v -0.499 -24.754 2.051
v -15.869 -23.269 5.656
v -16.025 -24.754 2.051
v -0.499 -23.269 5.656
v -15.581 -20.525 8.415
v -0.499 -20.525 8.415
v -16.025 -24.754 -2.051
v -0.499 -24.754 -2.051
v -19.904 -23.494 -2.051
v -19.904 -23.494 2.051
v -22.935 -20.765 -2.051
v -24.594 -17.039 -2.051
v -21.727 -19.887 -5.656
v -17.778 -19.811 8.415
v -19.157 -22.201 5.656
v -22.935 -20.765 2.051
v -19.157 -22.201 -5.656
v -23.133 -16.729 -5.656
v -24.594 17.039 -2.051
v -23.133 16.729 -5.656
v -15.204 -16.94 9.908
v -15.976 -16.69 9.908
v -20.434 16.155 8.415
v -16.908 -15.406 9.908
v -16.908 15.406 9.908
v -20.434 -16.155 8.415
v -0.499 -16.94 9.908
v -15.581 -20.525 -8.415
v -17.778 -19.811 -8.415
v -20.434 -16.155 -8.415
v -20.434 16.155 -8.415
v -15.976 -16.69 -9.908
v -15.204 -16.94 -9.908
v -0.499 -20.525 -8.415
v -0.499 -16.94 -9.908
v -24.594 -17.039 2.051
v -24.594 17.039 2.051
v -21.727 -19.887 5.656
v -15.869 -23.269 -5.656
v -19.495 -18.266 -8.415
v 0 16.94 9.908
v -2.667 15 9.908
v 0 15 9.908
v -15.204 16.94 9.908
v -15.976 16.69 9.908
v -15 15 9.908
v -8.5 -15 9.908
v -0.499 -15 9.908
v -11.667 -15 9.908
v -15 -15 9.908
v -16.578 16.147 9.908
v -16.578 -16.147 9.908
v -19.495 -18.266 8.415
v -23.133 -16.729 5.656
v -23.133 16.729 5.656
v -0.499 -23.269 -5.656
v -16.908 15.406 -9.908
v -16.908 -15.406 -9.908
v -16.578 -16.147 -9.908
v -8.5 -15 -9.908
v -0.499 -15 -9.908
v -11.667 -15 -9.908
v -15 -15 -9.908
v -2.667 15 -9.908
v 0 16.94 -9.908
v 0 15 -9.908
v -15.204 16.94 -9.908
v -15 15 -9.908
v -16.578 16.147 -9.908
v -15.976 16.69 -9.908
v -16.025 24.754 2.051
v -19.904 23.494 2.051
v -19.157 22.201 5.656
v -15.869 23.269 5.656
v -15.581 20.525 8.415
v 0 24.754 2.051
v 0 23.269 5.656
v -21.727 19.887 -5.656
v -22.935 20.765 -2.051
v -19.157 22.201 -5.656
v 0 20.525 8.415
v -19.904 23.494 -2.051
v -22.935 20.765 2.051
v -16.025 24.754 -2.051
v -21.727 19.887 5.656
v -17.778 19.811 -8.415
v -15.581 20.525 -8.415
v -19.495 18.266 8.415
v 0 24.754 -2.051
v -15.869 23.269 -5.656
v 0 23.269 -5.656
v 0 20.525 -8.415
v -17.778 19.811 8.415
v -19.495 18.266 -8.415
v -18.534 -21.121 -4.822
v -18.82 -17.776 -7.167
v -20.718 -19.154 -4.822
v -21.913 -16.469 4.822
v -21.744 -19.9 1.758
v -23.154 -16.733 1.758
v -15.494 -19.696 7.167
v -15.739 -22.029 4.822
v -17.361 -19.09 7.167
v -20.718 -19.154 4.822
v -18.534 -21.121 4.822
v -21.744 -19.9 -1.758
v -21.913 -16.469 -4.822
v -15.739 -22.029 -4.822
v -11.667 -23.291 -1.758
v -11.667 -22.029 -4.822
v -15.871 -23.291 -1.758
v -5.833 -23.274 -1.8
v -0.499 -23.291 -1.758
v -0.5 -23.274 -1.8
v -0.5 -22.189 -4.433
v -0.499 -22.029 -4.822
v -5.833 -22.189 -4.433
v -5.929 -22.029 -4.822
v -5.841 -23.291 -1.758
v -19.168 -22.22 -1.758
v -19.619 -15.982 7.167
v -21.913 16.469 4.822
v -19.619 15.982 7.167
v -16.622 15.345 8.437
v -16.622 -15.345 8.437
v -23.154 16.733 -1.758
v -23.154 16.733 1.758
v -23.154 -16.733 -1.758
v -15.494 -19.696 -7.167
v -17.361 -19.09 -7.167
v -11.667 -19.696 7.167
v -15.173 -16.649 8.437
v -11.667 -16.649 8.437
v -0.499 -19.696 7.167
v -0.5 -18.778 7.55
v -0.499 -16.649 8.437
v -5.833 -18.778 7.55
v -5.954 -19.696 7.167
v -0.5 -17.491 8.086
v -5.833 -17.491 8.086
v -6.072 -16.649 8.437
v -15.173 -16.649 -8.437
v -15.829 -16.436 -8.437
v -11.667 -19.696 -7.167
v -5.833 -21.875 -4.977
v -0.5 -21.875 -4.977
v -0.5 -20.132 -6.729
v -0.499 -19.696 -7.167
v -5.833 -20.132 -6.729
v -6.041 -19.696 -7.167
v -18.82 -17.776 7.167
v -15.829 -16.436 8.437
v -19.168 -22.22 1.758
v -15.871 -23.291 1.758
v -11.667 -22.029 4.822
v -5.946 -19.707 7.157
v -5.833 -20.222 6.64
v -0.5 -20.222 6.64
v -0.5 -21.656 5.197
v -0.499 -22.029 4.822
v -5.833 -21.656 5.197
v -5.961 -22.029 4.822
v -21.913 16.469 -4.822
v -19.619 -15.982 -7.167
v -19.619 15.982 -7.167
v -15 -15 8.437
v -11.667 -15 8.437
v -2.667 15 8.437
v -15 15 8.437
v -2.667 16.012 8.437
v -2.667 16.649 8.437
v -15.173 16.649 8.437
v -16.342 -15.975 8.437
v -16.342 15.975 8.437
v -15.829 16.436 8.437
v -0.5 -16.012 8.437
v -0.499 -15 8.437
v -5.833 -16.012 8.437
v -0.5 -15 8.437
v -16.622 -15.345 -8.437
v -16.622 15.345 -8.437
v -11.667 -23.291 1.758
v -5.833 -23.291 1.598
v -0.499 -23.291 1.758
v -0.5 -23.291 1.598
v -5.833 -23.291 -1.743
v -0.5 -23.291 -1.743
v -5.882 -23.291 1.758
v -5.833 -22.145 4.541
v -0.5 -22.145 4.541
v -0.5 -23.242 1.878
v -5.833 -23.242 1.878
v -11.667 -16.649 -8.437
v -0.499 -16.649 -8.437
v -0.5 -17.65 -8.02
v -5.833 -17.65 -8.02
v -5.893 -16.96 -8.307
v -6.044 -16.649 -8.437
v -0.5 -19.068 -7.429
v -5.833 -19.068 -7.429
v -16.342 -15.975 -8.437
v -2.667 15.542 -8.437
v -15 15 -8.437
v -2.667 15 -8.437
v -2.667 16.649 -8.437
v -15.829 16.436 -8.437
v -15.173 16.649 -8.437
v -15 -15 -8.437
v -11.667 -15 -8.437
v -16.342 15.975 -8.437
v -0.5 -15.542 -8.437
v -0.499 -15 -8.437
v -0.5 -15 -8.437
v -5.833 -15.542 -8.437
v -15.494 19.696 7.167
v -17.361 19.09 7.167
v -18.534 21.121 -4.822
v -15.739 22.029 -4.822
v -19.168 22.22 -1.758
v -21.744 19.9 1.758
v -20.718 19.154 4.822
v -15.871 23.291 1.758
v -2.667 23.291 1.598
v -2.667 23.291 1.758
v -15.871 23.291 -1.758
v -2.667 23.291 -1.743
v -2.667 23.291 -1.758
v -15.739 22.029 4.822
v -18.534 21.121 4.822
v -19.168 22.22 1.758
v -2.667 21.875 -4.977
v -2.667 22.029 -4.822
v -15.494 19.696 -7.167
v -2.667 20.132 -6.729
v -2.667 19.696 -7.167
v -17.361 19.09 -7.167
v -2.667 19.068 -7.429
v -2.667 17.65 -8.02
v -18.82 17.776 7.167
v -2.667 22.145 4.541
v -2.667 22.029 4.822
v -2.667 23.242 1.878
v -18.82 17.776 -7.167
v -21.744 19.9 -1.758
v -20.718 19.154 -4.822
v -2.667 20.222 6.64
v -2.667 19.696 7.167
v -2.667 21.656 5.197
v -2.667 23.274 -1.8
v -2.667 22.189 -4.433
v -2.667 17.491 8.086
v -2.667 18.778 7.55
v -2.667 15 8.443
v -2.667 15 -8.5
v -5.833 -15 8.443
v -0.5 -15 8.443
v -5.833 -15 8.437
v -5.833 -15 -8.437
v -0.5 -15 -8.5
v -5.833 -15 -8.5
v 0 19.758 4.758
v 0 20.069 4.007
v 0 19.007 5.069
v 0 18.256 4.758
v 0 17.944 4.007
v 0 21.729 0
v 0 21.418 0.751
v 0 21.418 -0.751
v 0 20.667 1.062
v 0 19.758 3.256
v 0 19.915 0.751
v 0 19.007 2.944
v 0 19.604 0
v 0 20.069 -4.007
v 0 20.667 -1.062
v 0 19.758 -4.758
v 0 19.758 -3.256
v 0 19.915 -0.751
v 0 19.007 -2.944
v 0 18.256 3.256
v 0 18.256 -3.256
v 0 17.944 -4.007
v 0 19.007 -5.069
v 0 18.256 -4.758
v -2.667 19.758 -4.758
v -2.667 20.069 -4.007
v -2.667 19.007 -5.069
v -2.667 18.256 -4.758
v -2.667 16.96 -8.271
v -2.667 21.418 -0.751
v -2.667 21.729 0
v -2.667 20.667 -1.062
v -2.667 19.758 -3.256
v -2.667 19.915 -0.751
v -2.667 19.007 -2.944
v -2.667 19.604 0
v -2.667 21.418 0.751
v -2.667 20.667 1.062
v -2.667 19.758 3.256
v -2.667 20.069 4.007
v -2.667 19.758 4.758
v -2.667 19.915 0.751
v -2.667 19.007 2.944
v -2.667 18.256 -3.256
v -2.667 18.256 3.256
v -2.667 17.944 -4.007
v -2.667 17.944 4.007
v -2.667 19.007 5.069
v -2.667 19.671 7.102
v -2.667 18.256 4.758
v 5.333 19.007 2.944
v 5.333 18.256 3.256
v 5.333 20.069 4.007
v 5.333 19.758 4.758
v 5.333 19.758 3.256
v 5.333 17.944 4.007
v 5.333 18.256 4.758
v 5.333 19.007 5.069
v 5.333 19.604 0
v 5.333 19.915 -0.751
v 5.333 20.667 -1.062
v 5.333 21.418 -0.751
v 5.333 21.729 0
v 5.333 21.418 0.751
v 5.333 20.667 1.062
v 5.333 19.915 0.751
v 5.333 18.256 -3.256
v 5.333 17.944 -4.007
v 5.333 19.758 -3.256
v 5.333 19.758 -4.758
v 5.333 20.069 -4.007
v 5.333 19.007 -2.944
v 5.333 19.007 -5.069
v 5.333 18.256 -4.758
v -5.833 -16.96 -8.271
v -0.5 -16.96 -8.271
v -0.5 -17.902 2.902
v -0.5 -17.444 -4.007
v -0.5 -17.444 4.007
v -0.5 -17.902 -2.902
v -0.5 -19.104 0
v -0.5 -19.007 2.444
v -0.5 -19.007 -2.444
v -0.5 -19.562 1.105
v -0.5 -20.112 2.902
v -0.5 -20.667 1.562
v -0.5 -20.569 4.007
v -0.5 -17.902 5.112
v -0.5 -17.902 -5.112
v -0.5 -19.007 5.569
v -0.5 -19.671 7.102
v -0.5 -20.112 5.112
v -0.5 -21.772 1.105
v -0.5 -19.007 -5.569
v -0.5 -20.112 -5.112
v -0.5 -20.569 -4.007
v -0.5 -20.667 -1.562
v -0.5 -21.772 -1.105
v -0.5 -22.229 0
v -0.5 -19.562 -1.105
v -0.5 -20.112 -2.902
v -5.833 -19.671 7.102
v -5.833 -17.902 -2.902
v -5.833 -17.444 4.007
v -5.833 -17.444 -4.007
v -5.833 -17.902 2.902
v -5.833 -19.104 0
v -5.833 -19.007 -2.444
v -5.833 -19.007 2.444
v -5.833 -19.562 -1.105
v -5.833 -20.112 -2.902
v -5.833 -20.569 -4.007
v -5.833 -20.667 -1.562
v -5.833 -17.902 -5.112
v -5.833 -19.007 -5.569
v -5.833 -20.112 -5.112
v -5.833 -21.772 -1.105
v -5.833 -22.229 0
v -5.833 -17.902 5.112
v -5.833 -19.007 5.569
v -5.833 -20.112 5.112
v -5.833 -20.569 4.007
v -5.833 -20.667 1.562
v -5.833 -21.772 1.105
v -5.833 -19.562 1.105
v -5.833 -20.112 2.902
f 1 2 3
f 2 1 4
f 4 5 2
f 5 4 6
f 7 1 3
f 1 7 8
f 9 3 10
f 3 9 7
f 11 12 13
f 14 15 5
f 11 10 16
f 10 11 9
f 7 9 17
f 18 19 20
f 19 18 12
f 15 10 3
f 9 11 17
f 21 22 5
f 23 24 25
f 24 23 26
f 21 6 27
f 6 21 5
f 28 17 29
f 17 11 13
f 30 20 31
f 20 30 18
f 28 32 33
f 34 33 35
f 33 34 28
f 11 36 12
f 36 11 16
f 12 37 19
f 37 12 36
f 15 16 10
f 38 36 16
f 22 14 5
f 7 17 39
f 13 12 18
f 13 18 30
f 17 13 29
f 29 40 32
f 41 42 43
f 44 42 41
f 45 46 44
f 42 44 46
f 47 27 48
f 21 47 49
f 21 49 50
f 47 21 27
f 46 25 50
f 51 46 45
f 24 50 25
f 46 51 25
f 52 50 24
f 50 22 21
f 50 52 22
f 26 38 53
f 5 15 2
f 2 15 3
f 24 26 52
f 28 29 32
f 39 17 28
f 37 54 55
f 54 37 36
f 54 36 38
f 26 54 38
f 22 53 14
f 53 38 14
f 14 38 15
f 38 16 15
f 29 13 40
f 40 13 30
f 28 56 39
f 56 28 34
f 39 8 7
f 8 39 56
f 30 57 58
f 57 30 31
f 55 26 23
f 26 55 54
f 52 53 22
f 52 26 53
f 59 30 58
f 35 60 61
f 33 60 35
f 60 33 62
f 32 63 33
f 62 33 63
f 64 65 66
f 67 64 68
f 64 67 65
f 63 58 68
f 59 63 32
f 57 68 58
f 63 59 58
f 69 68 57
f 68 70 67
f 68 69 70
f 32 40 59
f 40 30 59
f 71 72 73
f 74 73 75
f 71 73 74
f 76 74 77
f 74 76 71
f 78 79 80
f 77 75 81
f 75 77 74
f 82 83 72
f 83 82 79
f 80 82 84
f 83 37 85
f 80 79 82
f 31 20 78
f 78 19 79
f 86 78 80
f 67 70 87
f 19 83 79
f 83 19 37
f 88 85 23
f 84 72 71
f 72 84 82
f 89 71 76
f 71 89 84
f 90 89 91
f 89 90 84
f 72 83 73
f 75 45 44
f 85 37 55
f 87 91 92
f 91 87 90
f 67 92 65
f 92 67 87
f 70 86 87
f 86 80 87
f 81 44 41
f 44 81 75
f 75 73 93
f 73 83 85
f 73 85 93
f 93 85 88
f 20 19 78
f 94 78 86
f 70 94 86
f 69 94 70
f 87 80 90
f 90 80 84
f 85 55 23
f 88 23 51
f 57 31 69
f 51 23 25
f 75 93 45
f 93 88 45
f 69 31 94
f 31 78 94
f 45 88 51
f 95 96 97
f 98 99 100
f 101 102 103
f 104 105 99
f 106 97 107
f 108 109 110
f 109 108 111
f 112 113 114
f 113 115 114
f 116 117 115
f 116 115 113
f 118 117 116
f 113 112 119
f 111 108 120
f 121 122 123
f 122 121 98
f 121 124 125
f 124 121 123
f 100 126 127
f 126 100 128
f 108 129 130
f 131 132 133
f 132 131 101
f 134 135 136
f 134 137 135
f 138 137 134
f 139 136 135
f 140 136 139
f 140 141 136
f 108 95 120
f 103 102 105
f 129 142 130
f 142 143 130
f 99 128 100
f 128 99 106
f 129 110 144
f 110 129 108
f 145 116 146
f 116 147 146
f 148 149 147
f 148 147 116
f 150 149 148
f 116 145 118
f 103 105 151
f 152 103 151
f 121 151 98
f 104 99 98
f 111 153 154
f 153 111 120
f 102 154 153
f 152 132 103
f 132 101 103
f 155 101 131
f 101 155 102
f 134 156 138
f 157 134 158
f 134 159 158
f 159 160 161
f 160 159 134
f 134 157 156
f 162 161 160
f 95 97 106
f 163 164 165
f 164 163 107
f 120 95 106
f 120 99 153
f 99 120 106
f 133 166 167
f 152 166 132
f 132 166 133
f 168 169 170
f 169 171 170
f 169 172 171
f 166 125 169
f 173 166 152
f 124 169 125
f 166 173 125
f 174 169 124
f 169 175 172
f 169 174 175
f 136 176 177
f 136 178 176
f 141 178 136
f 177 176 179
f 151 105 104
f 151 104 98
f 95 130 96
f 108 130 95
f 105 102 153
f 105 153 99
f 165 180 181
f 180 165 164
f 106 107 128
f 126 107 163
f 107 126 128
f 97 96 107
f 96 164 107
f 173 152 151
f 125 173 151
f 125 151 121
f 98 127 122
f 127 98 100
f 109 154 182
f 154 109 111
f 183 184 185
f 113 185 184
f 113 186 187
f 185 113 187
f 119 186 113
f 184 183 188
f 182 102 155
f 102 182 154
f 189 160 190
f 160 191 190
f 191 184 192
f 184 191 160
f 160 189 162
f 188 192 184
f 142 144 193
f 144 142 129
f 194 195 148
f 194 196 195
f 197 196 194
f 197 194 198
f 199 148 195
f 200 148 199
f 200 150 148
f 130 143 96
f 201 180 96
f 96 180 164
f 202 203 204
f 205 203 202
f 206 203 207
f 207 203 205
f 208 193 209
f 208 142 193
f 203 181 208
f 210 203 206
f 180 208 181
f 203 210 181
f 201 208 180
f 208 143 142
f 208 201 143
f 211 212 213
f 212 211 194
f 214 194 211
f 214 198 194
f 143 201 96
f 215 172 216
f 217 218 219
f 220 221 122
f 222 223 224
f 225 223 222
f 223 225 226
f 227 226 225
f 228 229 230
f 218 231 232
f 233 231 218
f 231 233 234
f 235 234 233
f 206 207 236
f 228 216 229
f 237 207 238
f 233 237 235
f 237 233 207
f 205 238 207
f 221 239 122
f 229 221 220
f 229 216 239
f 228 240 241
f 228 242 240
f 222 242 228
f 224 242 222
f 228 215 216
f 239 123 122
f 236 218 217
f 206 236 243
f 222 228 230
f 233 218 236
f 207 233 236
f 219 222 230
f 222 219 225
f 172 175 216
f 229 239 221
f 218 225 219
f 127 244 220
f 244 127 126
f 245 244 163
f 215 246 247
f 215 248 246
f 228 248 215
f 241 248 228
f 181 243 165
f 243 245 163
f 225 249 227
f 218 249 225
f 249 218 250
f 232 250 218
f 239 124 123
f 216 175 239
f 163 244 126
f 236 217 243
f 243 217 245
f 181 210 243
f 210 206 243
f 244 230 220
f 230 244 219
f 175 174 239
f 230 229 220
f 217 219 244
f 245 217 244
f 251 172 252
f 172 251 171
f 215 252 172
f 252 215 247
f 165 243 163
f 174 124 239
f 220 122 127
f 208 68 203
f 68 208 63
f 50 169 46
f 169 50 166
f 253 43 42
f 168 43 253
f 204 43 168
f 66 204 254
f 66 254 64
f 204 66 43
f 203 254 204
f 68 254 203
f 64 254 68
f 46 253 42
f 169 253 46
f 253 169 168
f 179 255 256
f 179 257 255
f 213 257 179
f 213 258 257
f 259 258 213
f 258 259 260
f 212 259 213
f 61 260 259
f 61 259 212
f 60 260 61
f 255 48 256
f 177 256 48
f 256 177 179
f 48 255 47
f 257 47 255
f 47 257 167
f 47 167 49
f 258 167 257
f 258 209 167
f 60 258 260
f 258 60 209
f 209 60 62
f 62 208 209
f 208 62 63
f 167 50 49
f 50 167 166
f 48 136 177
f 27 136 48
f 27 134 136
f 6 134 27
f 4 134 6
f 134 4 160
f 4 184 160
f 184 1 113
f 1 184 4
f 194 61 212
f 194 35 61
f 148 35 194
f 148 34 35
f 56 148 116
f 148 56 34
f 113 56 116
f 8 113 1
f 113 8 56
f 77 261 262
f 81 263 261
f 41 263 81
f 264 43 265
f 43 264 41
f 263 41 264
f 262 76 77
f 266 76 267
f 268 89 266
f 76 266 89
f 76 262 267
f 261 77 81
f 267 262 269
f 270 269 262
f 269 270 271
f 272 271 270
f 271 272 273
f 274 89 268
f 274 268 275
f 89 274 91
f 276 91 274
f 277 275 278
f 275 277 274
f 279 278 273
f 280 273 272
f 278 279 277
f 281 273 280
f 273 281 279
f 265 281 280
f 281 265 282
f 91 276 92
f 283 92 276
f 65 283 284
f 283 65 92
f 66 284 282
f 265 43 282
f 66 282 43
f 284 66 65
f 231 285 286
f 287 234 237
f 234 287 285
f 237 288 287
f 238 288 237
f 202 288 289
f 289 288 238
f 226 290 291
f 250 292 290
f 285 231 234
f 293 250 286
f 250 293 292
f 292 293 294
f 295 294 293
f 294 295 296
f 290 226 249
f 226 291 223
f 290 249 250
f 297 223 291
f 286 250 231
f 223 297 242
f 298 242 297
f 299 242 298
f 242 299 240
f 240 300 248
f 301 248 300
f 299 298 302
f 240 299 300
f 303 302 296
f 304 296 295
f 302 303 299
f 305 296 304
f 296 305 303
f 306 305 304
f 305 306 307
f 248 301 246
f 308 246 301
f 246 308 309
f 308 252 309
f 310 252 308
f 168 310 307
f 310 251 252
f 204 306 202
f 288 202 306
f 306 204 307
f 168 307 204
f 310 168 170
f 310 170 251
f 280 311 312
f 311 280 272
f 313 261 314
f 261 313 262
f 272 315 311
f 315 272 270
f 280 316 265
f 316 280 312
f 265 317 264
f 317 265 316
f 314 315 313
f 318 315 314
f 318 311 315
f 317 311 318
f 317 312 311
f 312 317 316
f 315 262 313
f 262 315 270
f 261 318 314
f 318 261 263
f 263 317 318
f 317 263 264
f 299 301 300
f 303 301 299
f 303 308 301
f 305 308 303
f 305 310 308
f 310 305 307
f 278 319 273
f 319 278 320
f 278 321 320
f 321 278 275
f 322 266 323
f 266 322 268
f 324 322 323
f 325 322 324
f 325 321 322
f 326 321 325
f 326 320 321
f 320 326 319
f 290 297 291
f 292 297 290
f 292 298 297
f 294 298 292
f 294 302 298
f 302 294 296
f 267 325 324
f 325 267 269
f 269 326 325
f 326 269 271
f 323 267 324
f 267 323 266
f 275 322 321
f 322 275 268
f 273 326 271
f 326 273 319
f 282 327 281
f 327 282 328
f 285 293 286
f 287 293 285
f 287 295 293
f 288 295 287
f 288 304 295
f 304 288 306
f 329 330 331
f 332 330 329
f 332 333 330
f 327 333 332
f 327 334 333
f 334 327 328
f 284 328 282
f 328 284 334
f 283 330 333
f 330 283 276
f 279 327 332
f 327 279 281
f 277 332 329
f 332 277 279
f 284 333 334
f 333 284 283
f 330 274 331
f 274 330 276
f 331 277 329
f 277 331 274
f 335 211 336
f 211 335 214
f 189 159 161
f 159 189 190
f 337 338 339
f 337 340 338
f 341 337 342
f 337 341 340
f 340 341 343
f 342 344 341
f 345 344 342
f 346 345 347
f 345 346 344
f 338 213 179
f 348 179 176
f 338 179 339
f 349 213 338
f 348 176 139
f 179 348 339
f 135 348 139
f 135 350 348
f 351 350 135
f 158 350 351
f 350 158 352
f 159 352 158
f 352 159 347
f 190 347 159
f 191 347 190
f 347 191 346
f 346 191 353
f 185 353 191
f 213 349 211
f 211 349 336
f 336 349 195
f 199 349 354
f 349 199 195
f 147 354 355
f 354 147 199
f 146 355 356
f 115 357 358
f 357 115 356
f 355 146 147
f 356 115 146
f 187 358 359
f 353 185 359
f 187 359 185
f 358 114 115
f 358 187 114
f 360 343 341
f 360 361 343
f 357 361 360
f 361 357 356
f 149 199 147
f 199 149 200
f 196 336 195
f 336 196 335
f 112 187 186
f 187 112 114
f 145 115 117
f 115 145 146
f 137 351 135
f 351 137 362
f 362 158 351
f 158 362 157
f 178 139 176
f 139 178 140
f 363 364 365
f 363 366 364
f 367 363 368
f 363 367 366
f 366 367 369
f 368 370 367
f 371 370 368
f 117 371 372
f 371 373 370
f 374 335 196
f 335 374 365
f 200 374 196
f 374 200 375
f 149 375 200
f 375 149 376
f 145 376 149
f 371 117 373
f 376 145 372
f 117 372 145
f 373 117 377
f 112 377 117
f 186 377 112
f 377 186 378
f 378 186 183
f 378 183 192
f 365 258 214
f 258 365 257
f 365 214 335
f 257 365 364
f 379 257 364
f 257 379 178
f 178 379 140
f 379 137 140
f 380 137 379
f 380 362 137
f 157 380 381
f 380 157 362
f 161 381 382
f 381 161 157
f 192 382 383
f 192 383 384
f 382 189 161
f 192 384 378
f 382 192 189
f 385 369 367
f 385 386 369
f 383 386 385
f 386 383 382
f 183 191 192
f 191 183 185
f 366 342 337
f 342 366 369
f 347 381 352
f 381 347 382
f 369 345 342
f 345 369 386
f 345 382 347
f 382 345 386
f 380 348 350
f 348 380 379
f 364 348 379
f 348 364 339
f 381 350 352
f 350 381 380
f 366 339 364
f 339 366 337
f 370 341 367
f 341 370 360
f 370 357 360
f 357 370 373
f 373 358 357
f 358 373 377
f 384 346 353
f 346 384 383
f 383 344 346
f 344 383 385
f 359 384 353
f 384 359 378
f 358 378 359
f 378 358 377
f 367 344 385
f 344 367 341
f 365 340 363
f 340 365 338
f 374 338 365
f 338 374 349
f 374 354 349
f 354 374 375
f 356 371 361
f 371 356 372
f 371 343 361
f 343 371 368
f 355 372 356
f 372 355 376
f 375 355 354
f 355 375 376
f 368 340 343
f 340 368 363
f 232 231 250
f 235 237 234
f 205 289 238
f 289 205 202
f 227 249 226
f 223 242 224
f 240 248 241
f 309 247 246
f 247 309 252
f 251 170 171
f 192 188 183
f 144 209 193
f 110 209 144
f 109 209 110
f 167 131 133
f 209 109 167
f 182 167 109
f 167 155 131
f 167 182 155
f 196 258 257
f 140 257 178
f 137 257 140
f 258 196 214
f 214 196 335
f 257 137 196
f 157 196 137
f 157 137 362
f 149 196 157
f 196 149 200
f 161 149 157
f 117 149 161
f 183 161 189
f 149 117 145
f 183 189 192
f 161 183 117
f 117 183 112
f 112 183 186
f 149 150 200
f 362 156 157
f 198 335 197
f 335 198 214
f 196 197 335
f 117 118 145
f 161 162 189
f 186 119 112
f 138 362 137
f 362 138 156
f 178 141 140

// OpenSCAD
union () {
  intersection () {
    difference () {
      difference () {
        difference () {
          minkowski () {
            intersection () {
              difference () {
                union () {
                  cube ([30, 30, 30], center=true);
                }
                union () {
                  cube ([29.99, 29.99, 29.99], center=true);
                }
              }
              cube ([400, 400, 0.2], center=true);
            }
            sphere ($fn=15, r=10);
          }
          minkowski () {
            intersection () {
              difference () {
                union () {
                  cube ([30, 30, 30], center=true);
                }
                union () {
                  cube ([29.99, 29.99, 29.99], center=true);
                }
              }
              cube ([400, 400, 0.2], center=true);
            }
            sphere ($fn=15, r=8.5);
          }
        }
        union () {
          cube ([30, 30, 30], center=true);
        }
      }
      translate ([0, -15, 0]) {
        mirror ([0, 1, 0]) {
          mirror ([1, 0, 0]) {
            translate ([-0.001, 0, 0]) {
              translate ([0.25, 0, 0]) {
                rotate (a=90.0, v=[0, 1, 0]) {
                  intersection () {
                    translate ([0, 18.0, 0]) {
                      cube ([36.0, 36.0, 36.0], center=true);
                    }
                    cylinder (h=0.5, r=17.0, center=true);
                  }
                }
              }
            }
          }
        }
      }
      translate ([20, 0, 0]) {
        cube ([40, 80, 40], center=true);
      }
    }
  }
  hull () {
    translate ([0, 15, 0]) {
      translate ([-8/3, 0, 0]) {
        translate ([4/3, 0, 0]) {
          rotate (a=90.0, v=[0, 1, 0]) {
            intersection () {
              translate ([0, 9.5, 0]) {
                cube ([19.0, 19.0, 19.0], center=true);
              }
              cylinder (h=8/3, r=8.5, center=true);
            }
          }
        }
      }
    }
    intersection () {
      difference () {
        difference () {
          minkowski () {
            intersection () {
              difference () {
                union () {
                  cube ([30, 30, 30], center=true);
                }
                union () {
                  cube ([29.99, 29.99, 29.99], center=true);
                }
              }
              cube ([400, 400, 0.2], center=true);
            }
            sphere ($fn=15, r=10);
          }
          minkowski () {
            intersection () {
              difference () {
                union () {
                  cube ([30, 30, 30], center=true);
                }
                union () {
                  cube ([29.99, 29.99, 29.99], center=true);
                }
              }
              cube ([400, 400, 0.2], center=true);
            }
            sphere ($fn=15, r=8.5);
          }
        }
        union () {
          cube ([30, 30, 30], center=true);
        }
      }
      translate ([0, 15, 0]) {
        translate ([-8/3, 0, 0]) {
          translate ([4/3, 0, 0]) {
            rotate (a=90.0, v=[0, 1, 0]) {
              intersection () {
                translate ([0, 18.0, 0]) {
                  cube ([36.0, 36.0, 36.0], center=true);
                }
                cylinder (h=8/3, r=17.0, center=true);
              }
            }
          }
        }
      }
    }
  }
  translate ([0, 15, 0]) {
    union () {
      translate ([-8/3, 0, 0]) {
        translate ([4/3, 0, 0]) {
          rotate (a=90.0, v=[0, 1, 0]) {
            intersection () {
              translate ([0, 9.5, 0]) {
                cube ([19.0, 19.0, 19.0], center=true);
              }
              cylinder (h=8/3, r=8.5, center=true);
            }
          }
        }
      }
      translate ([-8/3, 0, 0]) {
        union () {
          translate ([4, 0, 0]) {
            rotate (a=45.0, v=[-1, 0, 0]) {
              translate ([0, 0, 5.666666666666667]) {
                rotate (a=90.0, v=[0, 1, 0]) {
                  cylinder ($fn=8, h=8, r=1.0625, center=true);
                }
              }
            }
          }
          translate ([4, 0, 0]) {
            rotate (a=90.0, v=[-1, 0, 0]) {
              translate ([0, 0, 5.666666666666667]) {
                rotate (a=90.0, v=[0, 1, 0]) {
                  cylinder ($fn=8, h=8, r=1.0625, center=true);
                }
              }
            }
          }
          translate ([4, 0, 0]) {
            rotate (a=135.0, v=[-1, 0, 0]) {
              translate ([0, 0, 5.666666666666667]) {
                rotate (a=90.0, v=[0, 1, 0]) {
                  cylinder ($fn=8, h=8, r=1.0625, center=true);
                }
              }
            }
          }
        }
      }
    }
  }
  hull () {
    translate ([0, -15, 0]) {
      mirror ([0, 1, 0]) {
        mirror ([1, 0, 0]) {
          translate ([5.833333333333333, 0, 0]) {
            translate ([1.5833333333333335, 0, 0]) {
              rotate (a=90.0, v=[0, 1, 0]) {
                intersection () {
                  translate ([0, 9.5, 0]) {
                    cube ([19.0, 19.0, 19.0], center=true);
                  }
                  cylinder (h=3.166666666666667, r=8.5, center=true);
                }
              }
            }
          }
        }
      }
    }
    intersection () {
      difference () {
        difference () {
          minkowski () {
            intersection () {
              difference () {
                union () {
                  cube ([30, 30, 30], center=true);
                }
                union () {
                  cube ([29.99, 29.99, 29.99], center=true);
                }
              }
              cube ([400, 400, 0.2], center=true);
            }
            sphere ($fn=15, r=10);
          }
          minkowski () {
            intersection () {
              difference () {
                union () {
                  cube ([30, 30, 30], center=true);
                }
                union () {
                  cube ([29.99, 29.99, 29.99], center=true);
                }
              }
              cube ([400, 400, 0.2], center=true);
            }
            sphere ($fn=15, r=8.5);
          }
        }
        union () {
          cube ([30, 30, 30], center=true);
        }
      }
      translate ([0, -15, 0]) {
        mirror ([0, 1, 0]) {
          mirror ([1, 0, 0]) {
            translate ([8.5, 0, 0]) {
              translate ([1.5833333333333335, 0, 0]) {
                rotate (a=90.0, v=[0, 1, 0]) {
                  intersection () {
                    translate ([0, 18.0, 0]) {
                      cube ([36.0, 36.0, 36.0], center=true);
                    }
                    cylinder (h=3.166666666666667, r=17.0, center=true);
                  }
                }
              }
            }
          }
        }
      }
    }
  }
  translate ([0, -15, 0]) {
    mirror ([0, 1, 0]) {
      mirror ([1, 0, 0]) {
        difference () {
          translate ([0.5, 0, 0]) {
            translate ([8/3, 0, 0]) {
              rotate (a=90.0, v=[0, 1, 0]) {
                intersection () {
                  translate ([0, 9.5, 0]) {
                    cube ([19.0, 19.0, 19.0], center=true);
                  }
                  cylinder (h=16/3, r=8.5, center=true);
                }
              }
            }
          }
          translate ([0.5, 0, 0]) {
            union () {
              translate ([4, 0, 0]) {
                rotate (a=45.0, v=[-1, 0, 0]) {
                  translate ([0, 0, 5.666666666666667]) {
                    rotate (a=90.0, v=[0, 1, 0]) {
                      cylinder ($fn=8, h=9.0, r=1.5625, center=true);
                    }
                  }
                }
              }
              translate ([4, 0, 0]) {
                rotate (a=90.0, v=[-1, 0, 0]) {
                  translate ([0, 0, 5.666666666666667]) {
                    rotate (a=90.0, v=[0, 1, 0]) {
                      cylinder ($fn=8, h=9.0, r=1.5625, center=true);
                    }
                  }
                }
              }
              translate ([4, 0, 0]) {
                rotate (a=135.0, v=[-1, 0, 0]) {
                  translate ([0, 0, 5.666666666666667]) {
                    rotate (a=90.0, v=[0, 1, 0]) {
                      cylinder ($fn=8, h=9.0, r=1.5625, center=true);
                    }
                  }
                }
              }
            }
          }
        }
      }
    }
  }
}
